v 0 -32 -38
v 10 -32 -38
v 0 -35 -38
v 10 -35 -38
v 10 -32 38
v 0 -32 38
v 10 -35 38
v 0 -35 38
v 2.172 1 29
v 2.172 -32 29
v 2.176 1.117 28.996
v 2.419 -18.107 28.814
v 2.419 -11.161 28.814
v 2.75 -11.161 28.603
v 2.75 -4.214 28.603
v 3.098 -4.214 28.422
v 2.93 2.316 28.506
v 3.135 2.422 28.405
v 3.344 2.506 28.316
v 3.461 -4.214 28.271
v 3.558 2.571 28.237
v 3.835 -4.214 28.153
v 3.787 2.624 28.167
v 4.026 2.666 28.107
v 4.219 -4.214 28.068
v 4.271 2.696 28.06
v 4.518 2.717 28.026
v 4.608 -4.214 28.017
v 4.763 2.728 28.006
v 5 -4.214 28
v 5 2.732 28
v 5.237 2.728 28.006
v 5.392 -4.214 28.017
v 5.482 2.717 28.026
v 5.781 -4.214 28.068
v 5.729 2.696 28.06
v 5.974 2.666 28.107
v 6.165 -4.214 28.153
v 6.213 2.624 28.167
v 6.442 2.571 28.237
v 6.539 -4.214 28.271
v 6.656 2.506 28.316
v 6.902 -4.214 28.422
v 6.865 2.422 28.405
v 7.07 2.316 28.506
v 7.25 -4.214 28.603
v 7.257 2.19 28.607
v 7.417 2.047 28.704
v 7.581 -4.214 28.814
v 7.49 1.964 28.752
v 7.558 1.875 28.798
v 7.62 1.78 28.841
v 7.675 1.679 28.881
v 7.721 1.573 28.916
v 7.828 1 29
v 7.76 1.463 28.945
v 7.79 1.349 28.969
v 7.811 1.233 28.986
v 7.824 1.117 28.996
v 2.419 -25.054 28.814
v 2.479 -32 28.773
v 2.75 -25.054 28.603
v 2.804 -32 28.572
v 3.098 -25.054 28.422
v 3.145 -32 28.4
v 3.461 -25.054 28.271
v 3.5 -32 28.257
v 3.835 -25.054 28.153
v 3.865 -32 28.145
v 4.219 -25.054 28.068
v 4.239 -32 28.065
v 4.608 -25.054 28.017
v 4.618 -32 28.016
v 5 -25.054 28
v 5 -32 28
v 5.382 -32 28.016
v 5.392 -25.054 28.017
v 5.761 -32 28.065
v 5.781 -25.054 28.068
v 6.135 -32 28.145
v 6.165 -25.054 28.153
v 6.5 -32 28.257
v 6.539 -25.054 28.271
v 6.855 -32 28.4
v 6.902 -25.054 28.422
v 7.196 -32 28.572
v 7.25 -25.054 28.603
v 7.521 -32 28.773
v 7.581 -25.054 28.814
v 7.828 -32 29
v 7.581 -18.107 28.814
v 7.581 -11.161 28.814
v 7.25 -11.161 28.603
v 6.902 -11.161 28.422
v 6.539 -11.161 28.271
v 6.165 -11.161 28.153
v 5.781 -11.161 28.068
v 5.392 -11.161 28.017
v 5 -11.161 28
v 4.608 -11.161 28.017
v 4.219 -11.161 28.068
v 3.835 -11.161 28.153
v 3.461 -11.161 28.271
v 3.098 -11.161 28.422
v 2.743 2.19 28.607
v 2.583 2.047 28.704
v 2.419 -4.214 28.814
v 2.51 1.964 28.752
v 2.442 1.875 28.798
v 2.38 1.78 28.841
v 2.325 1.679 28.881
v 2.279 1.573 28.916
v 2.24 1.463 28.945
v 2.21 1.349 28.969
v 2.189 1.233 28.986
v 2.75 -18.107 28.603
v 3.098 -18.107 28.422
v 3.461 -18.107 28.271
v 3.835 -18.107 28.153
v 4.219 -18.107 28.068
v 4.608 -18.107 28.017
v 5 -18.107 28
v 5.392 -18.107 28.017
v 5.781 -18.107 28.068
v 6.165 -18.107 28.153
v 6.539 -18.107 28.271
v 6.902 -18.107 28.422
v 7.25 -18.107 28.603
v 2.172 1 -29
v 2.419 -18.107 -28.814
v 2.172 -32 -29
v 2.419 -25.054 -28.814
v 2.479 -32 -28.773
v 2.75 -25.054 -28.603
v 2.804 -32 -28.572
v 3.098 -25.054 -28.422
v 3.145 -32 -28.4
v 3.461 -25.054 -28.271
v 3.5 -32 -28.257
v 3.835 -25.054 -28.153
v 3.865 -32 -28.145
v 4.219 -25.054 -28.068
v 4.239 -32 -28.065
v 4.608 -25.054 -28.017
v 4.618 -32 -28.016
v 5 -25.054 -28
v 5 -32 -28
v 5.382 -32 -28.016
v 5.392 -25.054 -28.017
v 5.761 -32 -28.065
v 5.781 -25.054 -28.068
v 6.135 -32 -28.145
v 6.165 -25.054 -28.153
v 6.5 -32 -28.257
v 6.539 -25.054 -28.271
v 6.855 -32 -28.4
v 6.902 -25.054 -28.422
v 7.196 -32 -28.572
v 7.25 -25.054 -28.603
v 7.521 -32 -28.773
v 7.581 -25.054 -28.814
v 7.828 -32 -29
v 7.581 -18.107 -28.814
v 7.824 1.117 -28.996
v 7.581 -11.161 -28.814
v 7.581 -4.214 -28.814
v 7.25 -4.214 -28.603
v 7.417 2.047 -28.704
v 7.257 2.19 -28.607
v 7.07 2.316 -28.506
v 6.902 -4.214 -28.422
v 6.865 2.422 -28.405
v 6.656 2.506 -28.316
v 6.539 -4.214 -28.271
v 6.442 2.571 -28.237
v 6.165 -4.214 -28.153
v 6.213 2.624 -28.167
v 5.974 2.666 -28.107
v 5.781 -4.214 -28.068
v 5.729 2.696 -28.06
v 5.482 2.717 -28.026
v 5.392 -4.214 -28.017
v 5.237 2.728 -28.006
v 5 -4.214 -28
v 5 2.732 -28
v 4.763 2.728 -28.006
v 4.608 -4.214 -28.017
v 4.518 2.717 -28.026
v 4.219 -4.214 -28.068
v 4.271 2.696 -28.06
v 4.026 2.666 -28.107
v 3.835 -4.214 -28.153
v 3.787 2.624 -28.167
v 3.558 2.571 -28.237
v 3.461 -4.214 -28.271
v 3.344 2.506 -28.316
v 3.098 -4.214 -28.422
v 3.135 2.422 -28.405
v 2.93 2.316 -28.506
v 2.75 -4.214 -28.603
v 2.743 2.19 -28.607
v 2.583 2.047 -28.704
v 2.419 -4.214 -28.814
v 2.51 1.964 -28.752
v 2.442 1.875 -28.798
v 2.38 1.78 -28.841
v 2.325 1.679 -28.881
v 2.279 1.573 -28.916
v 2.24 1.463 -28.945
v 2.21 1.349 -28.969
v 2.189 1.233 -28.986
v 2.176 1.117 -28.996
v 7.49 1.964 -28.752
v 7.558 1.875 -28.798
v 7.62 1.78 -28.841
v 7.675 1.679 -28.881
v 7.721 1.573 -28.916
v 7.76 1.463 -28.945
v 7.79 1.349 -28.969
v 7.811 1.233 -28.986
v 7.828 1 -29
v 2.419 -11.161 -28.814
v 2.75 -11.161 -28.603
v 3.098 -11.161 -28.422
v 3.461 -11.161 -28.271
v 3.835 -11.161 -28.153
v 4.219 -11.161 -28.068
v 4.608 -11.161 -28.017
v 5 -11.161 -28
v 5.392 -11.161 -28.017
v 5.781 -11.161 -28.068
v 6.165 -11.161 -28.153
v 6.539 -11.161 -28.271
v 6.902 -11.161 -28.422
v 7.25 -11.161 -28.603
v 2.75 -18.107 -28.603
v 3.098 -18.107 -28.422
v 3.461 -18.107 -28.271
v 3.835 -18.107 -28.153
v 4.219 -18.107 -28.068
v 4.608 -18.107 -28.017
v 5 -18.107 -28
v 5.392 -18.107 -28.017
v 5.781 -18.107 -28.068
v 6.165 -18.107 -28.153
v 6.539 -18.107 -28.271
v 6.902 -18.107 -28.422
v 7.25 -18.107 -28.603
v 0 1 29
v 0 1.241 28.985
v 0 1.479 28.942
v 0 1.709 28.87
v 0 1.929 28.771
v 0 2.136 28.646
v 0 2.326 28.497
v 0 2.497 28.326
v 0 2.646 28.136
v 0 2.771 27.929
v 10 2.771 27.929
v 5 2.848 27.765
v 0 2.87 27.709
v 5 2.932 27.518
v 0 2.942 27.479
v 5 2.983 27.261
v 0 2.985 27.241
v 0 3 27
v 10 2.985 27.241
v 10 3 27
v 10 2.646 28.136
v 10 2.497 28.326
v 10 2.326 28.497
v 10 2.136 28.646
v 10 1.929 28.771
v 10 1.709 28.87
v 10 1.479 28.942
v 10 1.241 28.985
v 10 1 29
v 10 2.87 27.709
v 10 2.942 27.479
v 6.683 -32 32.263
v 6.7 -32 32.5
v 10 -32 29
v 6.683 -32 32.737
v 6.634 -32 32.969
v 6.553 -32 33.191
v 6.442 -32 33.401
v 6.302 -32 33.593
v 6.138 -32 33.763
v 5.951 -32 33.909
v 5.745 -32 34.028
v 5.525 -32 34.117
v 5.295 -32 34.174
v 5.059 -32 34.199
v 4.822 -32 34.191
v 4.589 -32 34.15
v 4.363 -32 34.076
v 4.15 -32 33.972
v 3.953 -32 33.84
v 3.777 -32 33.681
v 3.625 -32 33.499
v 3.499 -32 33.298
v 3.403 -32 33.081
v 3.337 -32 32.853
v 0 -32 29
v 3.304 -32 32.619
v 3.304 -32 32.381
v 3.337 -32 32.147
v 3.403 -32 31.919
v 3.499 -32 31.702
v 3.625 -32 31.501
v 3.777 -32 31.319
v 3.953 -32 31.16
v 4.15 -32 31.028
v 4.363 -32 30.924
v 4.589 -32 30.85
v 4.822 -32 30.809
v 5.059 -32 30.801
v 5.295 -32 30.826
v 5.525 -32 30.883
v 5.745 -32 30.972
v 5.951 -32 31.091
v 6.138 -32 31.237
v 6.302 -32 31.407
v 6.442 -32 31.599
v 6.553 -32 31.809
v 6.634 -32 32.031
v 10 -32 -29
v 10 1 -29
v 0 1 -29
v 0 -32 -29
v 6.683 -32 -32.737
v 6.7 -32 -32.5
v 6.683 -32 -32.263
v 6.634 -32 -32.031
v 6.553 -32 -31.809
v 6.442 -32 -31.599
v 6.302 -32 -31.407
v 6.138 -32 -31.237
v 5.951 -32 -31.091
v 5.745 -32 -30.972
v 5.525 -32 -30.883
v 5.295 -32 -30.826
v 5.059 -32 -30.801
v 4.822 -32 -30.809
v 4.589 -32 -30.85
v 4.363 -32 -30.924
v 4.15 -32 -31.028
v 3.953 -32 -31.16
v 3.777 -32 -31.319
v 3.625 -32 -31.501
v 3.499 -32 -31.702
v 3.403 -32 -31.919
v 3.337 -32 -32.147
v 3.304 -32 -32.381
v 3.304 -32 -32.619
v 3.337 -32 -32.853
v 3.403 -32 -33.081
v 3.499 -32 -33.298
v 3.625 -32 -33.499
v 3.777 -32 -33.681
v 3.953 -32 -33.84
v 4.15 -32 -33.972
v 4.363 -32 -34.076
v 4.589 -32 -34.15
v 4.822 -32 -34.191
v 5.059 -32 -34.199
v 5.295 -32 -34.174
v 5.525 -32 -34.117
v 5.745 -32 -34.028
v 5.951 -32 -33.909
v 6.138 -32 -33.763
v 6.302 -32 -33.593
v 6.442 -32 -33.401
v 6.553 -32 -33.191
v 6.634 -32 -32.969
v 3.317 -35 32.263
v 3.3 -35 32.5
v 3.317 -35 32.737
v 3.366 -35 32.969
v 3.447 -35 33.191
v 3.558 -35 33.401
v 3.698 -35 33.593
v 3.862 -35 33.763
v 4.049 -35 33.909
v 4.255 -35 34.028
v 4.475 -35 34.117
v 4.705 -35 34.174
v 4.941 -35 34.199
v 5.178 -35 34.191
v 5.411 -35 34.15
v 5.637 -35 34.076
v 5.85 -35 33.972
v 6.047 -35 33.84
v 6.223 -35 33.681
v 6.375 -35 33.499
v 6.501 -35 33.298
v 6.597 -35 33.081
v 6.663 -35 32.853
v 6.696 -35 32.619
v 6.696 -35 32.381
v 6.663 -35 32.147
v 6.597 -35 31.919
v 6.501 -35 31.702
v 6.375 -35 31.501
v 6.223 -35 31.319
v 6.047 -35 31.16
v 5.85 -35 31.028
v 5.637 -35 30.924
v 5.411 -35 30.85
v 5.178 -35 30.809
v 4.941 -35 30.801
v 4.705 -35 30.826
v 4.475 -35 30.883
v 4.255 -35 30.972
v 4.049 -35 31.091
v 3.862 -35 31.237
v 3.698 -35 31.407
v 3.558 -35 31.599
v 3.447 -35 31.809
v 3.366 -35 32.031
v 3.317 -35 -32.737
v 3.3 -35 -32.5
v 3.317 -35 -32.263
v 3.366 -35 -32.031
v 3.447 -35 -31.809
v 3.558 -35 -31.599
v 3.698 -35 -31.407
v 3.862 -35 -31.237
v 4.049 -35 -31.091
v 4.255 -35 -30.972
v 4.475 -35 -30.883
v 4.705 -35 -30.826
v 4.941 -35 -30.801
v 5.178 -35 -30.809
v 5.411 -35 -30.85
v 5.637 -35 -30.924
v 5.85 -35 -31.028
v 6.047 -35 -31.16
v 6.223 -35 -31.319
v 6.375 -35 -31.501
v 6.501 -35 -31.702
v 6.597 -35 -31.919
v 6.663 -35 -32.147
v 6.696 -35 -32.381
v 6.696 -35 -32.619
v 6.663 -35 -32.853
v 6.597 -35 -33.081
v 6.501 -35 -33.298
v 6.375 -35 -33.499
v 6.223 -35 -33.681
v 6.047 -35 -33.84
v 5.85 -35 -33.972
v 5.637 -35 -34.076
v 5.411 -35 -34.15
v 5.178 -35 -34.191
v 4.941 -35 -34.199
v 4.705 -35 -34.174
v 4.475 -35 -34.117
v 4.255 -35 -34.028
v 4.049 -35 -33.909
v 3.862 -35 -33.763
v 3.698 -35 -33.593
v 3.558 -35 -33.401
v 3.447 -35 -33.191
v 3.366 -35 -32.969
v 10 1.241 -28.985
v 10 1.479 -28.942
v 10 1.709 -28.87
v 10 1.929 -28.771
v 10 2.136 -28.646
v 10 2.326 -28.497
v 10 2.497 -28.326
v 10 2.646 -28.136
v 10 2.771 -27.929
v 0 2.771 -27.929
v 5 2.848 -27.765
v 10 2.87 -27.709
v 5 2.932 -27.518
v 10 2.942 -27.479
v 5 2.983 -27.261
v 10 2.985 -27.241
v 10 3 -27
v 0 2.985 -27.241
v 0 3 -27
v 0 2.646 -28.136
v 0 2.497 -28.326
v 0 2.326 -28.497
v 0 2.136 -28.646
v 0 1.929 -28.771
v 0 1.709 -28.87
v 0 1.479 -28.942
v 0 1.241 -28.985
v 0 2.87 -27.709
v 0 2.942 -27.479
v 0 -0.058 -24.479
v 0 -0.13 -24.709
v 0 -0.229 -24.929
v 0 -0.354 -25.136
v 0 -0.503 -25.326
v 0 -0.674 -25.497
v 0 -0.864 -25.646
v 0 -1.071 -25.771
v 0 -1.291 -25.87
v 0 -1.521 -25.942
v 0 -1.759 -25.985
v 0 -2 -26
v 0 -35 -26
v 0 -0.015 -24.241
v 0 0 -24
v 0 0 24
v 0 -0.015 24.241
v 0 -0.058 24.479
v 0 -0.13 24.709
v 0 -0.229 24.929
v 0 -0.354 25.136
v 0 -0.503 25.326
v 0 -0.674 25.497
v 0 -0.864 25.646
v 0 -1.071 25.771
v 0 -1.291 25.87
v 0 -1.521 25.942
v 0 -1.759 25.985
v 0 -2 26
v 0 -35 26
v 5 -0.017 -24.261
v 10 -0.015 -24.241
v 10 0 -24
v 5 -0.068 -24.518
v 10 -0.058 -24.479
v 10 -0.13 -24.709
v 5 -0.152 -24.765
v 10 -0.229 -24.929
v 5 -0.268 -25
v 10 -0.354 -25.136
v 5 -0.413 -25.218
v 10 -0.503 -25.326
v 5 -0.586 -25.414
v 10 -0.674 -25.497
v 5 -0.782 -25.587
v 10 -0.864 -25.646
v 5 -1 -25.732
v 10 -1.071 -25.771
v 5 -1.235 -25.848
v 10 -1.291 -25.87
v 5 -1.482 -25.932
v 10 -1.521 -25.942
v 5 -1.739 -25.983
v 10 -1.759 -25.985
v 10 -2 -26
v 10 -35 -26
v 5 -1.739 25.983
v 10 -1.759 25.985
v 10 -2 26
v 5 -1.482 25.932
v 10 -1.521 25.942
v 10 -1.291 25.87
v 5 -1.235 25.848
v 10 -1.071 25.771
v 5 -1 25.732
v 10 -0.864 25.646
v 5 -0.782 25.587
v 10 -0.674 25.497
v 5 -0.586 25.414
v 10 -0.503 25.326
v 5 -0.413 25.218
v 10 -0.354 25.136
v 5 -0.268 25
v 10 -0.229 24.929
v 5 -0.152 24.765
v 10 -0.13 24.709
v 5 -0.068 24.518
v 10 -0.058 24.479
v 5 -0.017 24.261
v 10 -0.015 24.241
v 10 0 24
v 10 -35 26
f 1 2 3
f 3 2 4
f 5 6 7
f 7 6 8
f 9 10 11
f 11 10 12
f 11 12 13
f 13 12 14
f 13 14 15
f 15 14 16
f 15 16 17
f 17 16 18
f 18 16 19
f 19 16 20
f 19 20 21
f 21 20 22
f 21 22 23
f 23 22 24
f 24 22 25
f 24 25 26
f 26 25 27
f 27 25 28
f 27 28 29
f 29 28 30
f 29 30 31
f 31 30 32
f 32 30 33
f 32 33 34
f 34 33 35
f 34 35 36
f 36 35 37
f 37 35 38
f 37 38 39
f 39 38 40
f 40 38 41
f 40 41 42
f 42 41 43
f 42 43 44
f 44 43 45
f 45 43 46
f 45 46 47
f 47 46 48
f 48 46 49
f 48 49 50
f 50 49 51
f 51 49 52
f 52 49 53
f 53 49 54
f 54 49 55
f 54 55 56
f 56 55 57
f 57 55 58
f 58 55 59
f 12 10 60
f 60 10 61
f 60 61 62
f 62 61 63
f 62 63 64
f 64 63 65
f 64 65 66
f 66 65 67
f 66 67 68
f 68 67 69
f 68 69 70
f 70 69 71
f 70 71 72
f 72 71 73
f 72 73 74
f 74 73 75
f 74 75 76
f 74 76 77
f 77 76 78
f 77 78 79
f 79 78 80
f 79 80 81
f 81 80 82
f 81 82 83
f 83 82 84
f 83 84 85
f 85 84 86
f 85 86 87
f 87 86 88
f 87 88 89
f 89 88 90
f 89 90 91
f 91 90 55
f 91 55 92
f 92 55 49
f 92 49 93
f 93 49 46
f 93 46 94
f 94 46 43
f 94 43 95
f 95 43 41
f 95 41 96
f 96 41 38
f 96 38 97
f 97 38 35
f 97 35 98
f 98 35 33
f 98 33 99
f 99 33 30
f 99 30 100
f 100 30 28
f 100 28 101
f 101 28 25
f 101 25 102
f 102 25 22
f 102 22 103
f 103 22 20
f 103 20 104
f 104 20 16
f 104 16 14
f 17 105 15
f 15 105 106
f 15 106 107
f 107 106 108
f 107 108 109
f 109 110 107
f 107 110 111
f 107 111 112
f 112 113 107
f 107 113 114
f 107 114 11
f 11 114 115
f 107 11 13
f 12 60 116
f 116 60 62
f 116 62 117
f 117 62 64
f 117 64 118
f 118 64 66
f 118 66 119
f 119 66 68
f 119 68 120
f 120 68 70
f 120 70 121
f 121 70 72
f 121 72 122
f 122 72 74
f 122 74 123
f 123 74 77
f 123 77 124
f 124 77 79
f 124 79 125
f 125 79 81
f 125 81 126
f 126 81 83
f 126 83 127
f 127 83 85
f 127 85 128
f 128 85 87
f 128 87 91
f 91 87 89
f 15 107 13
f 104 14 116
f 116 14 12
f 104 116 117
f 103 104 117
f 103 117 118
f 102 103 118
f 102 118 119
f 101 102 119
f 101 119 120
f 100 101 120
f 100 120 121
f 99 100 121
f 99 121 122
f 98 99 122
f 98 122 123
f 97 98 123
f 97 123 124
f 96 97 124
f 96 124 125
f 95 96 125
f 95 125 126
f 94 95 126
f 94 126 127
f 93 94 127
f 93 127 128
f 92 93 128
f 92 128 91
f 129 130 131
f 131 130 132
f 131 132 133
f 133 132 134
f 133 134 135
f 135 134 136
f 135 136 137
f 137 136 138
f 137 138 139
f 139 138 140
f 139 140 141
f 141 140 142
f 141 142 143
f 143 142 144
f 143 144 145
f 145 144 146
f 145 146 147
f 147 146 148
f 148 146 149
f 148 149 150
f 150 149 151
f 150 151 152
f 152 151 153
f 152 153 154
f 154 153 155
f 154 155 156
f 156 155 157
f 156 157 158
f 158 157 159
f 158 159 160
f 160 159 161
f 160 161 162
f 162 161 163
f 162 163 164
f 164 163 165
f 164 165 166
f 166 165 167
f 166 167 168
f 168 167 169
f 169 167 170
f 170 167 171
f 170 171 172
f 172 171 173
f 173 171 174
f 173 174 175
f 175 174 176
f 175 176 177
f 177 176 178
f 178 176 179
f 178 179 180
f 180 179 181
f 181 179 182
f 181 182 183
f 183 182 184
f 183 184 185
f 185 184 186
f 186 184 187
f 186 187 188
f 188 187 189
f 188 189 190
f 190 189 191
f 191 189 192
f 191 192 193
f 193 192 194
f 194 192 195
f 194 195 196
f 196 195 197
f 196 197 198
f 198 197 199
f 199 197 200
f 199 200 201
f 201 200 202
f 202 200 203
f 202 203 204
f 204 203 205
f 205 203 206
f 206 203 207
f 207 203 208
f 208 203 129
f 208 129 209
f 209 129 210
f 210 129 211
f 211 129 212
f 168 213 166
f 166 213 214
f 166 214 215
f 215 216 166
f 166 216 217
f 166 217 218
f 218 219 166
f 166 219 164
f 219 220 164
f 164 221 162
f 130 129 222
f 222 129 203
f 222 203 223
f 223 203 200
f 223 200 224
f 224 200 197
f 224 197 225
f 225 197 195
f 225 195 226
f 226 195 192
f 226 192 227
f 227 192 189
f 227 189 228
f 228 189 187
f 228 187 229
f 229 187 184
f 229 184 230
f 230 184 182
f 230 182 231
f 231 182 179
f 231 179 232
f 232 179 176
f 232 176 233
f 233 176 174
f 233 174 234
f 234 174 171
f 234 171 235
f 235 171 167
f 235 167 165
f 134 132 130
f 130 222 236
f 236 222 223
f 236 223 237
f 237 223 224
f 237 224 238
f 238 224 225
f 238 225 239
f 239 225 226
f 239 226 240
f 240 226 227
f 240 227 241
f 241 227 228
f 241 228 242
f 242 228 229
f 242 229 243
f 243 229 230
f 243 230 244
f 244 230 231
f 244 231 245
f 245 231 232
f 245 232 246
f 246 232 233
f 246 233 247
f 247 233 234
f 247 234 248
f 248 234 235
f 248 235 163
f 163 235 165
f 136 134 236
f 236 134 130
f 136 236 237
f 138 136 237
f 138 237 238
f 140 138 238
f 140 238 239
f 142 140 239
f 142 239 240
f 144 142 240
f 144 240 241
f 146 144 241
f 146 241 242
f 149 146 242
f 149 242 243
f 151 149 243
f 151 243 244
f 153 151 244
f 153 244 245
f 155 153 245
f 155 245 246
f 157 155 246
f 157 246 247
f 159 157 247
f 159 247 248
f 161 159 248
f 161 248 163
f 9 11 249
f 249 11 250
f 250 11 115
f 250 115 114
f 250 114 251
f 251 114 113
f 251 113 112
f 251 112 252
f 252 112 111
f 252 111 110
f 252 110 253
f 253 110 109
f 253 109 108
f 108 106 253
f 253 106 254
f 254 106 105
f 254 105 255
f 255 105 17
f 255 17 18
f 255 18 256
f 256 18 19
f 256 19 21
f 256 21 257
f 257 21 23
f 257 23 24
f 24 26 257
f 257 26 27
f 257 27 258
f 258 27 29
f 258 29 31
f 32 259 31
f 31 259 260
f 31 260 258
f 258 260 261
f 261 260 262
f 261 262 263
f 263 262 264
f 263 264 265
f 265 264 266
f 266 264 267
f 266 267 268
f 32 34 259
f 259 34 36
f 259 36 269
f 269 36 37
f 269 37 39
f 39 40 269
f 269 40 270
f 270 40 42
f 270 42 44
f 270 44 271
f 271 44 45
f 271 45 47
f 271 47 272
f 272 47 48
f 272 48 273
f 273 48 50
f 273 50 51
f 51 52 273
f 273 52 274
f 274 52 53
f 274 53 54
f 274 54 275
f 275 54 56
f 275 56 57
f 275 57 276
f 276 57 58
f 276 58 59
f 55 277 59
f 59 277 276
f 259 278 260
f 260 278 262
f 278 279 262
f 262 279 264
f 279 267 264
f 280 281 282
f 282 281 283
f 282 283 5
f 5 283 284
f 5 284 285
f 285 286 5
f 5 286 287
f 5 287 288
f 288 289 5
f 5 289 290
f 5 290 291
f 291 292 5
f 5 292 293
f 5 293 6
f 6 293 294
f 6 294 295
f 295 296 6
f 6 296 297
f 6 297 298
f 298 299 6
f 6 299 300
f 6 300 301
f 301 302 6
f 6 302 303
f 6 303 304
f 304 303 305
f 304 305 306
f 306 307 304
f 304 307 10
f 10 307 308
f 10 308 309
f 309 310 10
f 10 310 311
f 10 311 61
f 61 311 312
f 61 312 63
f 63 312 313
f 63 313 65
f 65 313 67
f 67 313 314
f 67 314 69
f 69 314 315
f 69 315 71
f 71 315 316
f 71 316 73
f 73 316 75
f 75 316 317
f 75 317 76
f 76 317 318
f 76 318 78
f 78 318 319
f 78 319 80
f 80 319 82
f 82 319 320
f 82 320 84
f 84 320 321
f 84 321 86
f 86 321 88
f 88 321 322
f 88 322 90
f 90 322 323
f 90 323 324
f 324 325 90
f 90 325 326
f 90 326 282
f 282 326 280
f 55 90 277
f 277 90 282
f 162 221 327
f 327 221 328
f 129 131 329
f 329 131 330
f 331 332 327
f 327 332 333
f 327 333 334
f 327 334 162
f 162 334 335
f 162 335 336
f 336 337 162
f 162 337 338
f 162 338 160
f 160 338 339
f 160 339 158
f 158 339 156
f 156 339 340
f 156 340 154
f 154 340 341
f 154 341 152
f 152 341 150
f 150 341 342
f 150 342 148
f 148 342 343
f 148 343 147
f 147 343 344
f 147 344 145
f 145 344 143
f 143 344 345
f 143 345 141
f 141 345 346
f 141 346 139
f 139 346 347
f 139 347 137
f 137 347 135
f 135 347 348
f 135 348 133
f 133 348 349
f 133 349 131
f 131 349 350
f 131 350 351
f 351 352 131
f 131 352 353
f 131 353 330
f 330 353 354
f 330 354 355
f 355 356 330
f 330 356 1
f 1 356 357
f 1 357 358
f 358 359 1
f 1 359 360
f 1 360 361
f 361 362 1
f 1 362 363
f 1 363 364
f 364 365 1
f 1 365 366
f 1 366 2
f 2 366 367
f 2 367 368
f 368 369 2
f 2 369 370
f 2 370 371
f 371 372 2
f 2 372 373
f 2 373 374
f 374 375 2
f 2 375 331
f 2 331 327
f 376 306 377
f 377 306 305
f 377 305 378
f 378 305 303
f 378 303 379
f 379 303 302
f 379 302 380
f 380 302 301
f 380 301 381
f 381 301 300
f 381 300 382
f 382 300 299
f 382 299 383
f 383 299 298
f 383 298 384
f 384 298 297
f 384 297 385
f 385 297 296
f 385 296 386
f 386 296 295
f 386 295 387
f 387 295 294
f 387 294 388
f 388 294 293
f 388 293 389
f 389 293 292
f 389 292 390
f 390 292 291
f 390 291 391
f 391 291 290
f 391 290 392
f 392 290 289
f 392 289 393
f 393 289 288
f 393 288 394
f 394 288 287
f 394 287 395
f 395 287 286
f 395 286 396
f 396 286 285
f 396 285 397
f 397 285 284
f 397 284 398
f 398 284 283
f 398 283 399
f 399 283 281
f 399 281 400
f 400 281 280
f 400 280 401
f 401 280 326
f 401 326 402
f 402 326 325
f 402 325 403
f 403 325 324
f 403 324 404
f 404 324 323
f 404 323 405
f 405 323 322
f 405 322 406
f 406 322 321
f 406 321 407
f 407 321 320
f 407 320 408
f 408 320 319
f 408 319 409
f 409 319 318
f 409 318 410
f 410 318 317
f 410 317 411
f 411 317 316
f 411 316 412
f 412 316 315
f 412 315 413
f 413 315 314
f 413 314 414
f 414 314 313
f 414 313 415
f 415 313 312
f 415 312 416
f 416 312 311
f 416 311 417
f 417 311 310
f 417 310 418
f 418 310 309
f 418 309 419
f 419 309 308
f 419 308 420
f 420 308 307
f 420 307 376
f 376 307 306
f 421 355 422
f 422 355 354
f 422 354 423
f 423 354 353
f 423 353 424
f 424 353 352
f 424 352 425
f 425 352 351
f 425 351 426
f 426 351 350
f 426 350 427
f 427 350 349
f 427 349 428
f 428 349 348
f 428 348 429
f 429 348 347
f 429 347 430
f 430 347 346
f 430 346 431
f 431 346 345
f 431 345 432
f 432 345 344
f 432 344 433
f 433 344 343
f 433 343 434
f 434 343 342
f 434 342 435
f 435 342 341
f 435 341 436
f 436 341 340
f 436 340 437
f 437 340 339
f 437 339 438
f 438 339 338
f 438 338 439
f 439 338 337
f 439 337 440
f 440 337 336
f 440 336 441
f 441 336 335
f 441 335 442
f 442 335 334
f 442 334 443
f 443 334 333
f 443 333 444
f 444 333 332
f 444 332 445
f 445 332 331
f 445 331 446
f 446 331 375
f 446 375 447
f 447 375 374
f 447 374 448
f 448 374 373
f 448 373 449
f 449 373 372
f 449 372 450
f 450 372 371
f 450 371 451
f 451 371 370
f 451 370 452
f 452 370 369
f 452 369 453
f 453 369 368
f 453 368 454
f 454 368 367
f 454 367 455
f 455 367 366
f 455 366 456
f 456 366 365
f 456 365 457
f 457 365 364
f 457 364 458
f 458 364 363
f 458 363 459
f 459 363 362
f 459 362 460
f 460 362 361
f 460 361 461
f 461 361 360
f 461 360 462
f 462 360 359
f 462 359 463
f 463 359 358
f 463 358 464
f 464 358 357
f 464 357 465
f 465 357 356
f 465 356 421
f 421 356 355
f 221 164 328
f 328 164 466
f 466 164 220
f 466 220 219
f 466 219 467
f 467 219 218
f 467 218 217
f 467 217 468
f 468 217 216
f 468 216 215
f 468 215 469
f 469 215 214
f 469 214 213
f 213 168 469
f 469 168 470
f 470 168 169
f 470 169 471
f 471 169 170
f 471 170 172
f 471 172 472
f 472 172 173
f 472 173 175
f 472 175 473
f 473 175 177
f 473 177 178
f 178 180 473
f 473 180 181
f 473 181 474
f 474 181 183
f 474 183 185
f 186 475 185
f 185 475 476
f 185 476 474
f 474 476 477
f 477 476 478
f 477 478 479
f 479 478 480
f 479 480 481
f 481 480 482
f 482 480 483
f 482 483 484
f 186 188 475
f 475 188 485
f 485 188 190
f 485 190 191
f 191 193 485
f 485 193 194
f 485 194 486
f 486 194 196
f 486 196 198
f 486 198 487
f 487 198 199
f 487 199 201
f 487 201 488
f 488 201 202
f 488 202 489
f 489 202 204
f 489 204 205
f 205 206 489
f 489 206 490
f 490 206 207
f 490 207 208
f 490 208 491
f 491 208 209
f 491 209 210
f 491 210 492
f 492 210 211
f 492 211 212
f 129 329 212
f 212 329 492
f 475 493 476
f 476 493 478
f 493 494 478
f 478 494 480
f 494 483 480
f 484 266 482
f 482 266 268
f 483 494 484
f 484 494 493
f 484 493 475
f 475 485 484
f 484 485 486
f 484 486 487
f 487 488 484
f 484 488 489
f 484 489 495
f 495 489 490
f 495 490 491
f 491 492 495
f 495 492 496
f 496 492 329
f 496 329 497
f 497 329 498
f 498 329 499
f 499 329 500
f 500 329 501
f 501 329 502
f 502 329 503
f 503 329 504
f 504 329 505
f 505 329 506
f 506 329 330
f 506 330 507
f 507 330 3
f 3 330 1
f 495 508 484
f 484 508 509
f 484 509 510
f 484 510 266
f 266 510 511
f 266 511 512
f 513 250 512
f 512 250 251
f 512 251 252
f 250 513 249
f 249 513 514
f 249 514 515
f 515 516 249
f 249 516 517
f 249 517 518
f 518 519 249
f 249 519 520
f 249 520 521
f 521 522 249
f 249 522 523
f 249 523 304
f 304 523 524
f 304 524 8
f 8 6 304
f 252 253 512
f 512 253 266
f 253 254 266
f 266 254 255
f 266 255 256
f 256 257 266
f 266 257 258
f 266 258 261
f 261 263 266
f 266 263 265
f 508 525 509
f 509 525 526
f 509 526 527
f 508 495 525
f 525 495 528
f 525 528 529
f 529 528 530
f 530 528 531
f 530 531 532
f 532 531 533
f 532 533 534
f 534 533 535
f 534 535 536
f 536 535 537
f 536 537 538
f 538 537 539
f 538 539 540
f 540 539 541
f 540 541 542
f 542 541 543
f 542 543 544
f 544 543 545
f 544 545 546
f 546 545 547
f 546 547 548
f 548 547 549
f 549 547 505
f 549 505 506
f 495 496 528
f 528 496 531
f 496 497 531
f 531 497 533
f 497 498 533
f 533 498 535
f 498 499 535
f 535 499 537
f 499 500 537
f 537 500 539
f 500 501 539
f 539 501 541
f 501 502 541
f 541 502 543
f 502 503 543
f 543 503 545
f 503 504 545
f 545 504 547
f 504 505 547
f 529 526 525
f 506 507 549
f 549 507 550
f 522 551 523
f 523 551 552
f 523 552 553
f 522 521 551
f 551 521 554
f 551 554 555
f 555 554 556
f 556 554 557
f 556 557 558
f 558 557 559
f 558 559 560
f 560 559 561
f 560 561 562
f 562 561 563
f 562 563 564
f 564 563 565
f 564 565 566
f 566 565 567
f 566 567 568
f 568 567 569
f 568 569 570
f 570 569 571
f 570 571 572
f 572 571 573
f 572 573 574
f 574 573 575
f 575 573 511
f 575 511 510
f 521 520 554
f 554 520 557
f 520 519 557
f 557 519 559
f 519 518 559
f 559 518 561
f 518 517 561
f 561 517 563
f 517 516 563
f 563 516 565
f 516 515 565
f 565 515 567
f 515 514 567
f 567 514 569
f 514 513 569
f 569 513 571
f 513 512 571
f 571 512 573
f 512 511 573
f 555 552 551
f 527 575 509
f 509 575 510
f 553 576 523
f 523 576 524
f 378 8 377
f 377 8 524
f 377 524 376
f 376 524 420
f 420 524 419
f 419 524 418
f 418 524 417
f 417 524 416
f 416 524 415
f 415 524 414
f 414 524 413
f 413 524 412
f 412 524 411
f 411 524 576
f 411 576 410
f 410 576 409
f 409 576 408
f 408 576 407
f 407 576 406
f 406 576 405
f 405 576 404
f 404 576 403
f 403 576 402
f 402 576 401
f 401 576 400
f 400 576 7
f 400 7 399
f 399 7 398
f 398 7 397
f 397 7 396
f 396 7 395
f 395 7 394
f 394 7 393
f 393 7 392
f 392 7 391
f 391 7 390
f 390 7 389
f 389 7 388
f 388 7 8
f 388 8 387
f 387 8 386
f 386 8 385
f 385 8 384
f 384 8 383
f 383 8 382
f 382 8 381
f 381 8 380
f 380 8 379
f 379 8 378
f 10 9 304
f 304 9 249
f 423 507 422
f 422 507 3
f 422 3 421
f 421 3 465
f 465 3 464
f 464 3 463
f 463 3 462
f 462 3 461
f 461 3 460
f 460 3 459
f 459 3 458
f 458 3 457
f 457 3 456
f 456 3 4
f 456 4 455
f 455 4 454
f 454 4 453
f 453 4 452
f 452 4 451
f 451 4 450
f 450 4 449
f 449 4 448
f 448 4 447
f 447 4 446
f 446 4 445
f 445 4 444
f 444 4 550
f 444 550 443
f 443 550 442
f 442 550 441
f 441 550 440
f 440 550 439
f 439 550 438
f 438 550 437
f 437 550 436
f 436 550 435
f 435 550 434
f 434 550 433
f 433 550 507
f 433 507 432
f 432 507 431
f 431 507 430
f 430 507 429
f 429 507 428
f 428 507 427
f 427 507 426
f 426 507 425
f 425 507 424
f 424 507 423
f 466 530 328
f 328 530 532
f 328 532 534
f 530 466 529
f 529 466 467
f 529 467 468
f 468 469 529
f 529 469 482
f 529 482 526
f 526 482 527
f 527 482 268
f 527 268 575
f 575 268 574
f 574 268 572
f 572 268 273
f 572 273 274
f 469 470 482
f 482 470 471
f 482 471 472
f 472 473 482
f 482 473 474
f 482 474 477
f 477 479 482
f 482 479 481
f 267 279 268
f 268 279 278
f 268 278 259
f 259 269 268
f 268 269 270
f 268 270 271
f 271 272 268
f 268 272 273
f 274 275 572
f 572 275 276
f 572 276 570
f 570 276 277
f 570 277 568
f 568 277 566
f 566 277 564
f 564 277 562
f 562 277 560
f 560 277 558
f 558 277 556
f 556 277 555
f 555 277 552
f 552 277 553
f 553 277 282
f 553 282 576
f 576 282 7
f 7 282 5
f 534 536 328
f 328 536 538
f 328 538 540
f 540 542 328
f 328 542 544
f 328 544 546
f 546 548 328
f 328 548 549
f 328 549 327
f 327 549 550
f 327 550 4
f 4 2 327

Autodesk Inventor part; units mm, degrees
ref_plane "YZ Plane" through (0, 0, 0) normal (1, 0, 0) x (0, 1, 0)
ref_plane "XZ Plane" through (0, 0, 0) normal (0, 1, 0) x (-1, 0, 0)
ref_plane "XY Plane" through (0, 0, 0) normal (0, 0, 1) x (1, 0, 0)
sketch "Sketch1" plane through (0, 0, 0) normal (1, 0, 0) x (0, 1, 0)
  line L0 (0, 0) -> (0, 26)
  line L1 (0, 26) -> (-35, 26)
  line L2 (0, 0) -> (3, 0)
  line L3 (3, 0) -> (3, 29)
  line L4 (3, 29) -> (-32, 29)
  line L5 (-32, 29) -> (-32, 36)
  line L6 (-32, 36) -> (-35, 36)
  line L7 (-35, 36) -> (-35, 26)
  line L8 (0, 0) -> (0, -26)
  line L9 (0, -26) -> (-35, -26)
  line L10 (3, 0) -> (3, -29)
  line L11 (3, -29) -> (-32, -29)
  line L12 (-32, -29) -> (-32, -36)
  line L13 (-32, -36) -> (-35, -36)
  line L14 (-35, -36) -> (-35, -26)
  dimension "d0" = 26
  dimension "d1" = 35
  dimension "d2" = 3
  dimension "d3" = 29
  dimension "d4" = 35
  dimension "d5" = 7
extrude "Extrusion1" add sketch "Sketch1" along normal blind 10
fillet "Fillet1" radius 2 4 edges at (5, 3, 29) (5, 0, 26) (5, 0, -26) (5, 3, -29)
sketch "Sketch2" plane through (0, -32, 36) normal (0, 1, 0) x (1, 0, 0)
  line L0 (0, 7) -> (0, 0) projected
  line L1 (0, 3.5) -> (5, 3.5)
  line L2 (0, 62) -> (0, 72) projected
  line L3 (0, 72) -> (0, 68.5)
  line L4 (0, 68.5) -> (5, 68.5)
  point P0 (0, 36)
  dimension "d9" = 3.5
hole "Hole1" at (5, -32, 32.5) at (5, -32, -32.5) direction (0, -1, 0) diameter 3.4 end through all clearance for "Socket Head Cap Screw ISO 4762" size "M3" standard "ISO"
sketch "Sketch3" plane through (0, -32, 36) normal (0, 1, 0) x (1, 0, 0)
  circle A0 centre (5, 3.5) radius 1.7 projected
  circle A1 centre (5, 3.5) radius 4.5
  circle A2 centre (5, 68.5) radius 1.7 projected
  circle A3 centre (5, 68.5) radius 4.5
  point P0 (0, 36)
  dimension "d17" = 9
  dimension "d18" = 9
extrude "Extrusion2" cut sketch "Sketch3" along normal through all
sketch "Sketch4" plane through (0, -35, 36) normal (0, 0, 1) x (1, 0, 0)
  line L0 (0, 3) -> (2.1716, 3) projected
  line L1 (0, 0) -> (10, 0) projected
  line L2 (0, 3) -> (10, 3)
  line L3 (10, 3) -> (10, 0)
  line L4 (10, 0) -> (0, 0)
  line L5 (0, 0) -> (0, 3)
  point P0 (0, 35)
extrude "Extrusion3" add sketch "Sketch4" along normal blind 2
sketch "Sketch5" plane through (0, -35, -36) normal (0, 0, -1) x (-1, 0, 0)
  line L0 (0, 0) -> (-10, 0) projected
  line L1 (0, 3) -> (-10, 3)
  line L2 (-10, 3) -> (-10, 0)
  line L3 (-10, 0) -> (0, 0)
  line L4 (0, 0) -> (0, 3)
  point P0 (0, 35)
extrude "Extrusion4" add sketch "Sketch5" along normal blind 2
properties part number "battery-bracket"
